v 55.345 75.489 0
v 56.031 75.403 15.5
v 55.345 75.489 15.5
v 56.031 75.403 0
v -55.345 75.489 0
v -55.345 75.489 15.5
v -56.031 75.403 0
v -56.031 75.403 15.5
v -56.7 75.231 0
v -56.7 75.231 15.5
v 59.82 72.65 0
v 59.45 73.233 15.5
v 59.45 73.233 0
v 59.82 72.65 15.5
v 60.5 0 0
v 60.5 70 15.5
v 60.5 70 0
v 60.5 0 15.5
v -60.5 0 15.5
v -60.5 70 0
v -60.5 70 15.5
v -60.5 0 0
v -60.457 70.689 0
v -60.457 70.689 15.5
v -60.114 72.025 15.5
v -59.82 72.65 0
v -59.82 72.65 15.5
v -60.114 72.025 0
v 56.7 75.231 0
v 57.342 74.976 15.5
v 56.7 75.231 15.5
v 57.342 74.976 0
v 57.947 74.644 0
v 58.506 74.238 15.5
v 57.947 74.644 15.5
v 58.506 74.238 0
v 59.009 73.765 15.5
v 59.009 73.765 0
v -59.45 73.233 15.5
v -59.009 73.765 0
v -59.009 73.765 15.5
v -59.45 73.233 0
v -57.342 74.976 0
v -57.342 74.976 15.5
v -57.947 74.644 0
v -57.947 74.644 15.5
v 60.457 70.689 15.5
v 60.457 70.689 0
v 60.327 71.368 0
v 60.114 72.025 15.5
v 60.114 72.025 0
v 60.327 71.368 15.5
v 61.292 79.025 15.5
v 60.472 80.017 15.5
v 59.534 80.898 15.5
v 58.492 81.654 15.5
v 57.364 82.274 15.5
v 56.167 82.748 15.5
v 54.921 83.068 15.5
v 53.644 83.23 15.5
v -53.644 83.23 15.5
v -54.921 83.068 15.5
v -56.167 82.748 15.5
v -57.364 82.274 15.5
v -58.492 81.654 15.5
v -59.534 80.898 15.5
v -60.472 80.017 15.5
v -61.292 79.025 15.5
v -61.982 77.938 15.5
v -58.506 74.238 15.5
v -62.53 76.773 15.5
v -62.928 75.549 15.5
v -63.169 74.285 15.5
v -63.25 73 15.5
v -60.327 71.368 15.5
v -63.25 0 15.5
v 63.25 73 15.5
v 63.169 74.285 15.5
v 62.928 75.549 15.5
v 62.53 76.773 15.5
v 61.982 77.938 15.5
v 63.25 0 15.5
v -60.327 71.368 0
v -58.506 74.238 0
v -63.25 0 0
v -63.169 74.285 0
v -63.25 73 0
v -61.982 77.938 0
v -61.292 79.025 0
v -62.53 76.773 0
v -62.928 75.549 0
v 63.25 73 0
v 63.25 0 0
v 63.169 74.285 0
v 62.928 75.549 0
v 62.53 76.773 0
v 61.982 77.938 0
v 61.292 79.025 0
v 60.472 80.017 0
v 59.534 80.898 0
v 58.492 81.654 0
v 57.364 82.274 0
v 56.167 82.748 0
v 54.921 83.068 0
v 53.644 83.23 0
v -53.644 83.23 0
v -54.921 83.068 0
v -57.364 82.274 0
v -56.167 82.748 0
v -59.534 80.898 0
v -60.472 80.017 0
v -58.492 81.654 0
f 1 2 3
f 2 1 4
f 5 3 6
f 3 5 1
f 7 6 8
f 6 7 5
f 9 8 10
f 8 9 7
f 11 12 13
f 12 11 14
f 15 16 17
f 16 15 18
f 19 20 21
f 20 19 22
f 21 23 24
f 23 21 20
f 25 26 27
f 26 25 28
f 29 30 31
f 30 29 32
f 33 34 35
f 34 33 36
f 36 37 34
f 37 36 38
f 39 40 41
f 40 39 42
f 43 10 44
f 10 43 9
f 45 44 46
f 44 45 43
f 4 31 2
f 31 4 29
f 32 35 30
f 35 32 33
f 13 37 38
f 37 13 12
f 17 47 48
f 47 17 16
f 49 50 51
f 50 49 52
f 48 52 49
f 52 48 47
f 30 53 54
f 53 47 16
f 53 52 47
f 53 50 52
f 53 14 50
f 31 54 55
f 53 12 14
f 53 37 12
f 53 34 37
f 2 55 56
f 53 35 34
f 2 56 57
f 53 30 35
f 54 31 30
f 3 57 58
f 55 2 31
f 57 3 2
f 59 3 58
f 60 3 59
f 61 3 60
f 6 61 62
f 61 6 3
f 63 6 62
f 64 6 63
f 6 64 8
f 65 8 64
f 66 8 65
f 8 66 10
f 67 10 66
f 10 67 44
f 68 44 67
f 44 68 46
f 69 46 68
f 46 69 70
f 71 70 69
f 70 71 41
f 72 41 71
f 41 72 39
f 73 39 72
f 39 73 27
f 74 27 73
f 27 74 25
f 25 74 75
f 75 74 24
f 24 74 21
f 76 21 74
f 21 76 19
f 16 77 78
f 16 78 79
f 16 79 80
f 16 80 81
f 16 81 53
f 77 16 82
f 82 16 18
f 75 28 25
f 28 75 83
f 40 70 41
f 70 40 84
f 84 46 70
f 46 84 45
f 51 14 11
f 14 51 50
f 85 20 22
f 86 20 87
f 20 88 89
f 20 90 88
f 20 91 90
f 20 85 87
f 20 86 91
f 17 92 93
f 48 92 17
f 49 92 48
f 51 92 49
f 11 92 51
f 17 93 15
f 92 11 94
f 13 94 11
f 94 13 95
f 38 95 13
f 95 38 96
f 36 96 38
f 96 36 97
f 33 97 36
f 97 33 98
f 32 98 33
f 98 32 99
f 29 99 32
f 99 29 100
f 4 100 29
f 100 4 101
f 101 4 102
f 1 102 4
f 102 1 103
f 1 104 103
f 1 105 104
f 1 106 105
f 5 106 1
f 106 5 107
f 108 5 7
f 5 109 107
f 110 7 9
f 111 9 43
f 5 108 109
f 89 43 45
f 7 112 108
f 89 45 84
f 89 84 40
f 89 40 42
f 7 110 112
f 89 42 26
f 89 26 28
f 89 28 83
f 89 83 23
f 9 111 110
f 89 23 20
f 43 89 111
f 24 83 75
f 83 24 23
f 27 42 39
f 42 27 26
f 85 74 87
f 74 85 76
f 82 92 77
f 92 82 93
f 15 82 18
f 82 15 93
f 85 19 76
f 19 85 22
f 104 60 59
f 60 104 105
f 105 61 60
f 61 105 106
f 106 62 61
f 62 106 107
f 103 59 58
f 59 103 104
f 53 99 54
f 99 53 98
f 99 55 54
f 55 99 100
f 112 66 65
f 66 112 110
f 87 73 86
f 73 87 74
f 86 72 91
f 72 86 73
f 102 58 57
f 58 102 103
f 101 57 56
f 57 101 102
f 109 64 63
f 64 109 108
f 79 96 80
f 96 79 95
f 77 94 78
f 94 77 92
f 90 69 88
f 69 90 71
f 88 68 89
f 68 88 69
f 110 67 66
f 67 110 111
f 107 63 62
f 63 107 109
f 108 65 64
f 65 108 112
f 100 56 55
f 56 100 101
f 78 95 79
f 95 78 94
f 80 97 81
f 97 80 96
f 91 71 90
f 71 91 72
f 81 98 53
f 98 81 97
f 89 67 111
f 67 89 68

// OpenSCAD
$fn = 50;


difference() {
	union() {
		hull() {
			translate(v = [-53.0000000000, 73.0000000000, 0]) {
				cylinder(h = 15.5000000000, r = 10.2500000000);
			}
			translate(v = [53.0000000000, 73.0000000000, 0]) {
				cylinder(h = 15.5000000000, r = 10.2500000000);
			}
			translate(v = [-53.0000000000, -73.0000000000, 0]) {
				cylinder(h = 15.5000000000, r = 10.2500000000);
			}
			translate(v = [53.0000000000, -73.0000000000, 0]) {
				cylinder(h = 15.5000000000, r = 10.2500000000);
			}
		}
	}
	union() {
		hull() {
			translate(v = [-55.0000000000, 70.0000000000, 0]) {
				cylinder(h = 15.5000000000, r = 5.5000000000);
			}
			translate(v = [55.0000000000, 70.0000000000, 0]) {
				cylinder(h = 15.5000000000, r = 5.5000000000);
			}
			translate(v = [-55.0000000000, -70.0000000000, 0]) {
				cylinder(h = 15.5000000000, r = 5.5000000000);
			}
			translate(v = [55.0000000000, -70.0000000000, 0]) {
				cylinder(h = 15.5000000000, r = 5.5000000000);
			}
		}
		#translate(v = [-63.2500000000, -166.5000000000, 0]) {
			cube(size = [126.5000000000, 166.5000000000, 15.5000000000]);
		}
	}
}
